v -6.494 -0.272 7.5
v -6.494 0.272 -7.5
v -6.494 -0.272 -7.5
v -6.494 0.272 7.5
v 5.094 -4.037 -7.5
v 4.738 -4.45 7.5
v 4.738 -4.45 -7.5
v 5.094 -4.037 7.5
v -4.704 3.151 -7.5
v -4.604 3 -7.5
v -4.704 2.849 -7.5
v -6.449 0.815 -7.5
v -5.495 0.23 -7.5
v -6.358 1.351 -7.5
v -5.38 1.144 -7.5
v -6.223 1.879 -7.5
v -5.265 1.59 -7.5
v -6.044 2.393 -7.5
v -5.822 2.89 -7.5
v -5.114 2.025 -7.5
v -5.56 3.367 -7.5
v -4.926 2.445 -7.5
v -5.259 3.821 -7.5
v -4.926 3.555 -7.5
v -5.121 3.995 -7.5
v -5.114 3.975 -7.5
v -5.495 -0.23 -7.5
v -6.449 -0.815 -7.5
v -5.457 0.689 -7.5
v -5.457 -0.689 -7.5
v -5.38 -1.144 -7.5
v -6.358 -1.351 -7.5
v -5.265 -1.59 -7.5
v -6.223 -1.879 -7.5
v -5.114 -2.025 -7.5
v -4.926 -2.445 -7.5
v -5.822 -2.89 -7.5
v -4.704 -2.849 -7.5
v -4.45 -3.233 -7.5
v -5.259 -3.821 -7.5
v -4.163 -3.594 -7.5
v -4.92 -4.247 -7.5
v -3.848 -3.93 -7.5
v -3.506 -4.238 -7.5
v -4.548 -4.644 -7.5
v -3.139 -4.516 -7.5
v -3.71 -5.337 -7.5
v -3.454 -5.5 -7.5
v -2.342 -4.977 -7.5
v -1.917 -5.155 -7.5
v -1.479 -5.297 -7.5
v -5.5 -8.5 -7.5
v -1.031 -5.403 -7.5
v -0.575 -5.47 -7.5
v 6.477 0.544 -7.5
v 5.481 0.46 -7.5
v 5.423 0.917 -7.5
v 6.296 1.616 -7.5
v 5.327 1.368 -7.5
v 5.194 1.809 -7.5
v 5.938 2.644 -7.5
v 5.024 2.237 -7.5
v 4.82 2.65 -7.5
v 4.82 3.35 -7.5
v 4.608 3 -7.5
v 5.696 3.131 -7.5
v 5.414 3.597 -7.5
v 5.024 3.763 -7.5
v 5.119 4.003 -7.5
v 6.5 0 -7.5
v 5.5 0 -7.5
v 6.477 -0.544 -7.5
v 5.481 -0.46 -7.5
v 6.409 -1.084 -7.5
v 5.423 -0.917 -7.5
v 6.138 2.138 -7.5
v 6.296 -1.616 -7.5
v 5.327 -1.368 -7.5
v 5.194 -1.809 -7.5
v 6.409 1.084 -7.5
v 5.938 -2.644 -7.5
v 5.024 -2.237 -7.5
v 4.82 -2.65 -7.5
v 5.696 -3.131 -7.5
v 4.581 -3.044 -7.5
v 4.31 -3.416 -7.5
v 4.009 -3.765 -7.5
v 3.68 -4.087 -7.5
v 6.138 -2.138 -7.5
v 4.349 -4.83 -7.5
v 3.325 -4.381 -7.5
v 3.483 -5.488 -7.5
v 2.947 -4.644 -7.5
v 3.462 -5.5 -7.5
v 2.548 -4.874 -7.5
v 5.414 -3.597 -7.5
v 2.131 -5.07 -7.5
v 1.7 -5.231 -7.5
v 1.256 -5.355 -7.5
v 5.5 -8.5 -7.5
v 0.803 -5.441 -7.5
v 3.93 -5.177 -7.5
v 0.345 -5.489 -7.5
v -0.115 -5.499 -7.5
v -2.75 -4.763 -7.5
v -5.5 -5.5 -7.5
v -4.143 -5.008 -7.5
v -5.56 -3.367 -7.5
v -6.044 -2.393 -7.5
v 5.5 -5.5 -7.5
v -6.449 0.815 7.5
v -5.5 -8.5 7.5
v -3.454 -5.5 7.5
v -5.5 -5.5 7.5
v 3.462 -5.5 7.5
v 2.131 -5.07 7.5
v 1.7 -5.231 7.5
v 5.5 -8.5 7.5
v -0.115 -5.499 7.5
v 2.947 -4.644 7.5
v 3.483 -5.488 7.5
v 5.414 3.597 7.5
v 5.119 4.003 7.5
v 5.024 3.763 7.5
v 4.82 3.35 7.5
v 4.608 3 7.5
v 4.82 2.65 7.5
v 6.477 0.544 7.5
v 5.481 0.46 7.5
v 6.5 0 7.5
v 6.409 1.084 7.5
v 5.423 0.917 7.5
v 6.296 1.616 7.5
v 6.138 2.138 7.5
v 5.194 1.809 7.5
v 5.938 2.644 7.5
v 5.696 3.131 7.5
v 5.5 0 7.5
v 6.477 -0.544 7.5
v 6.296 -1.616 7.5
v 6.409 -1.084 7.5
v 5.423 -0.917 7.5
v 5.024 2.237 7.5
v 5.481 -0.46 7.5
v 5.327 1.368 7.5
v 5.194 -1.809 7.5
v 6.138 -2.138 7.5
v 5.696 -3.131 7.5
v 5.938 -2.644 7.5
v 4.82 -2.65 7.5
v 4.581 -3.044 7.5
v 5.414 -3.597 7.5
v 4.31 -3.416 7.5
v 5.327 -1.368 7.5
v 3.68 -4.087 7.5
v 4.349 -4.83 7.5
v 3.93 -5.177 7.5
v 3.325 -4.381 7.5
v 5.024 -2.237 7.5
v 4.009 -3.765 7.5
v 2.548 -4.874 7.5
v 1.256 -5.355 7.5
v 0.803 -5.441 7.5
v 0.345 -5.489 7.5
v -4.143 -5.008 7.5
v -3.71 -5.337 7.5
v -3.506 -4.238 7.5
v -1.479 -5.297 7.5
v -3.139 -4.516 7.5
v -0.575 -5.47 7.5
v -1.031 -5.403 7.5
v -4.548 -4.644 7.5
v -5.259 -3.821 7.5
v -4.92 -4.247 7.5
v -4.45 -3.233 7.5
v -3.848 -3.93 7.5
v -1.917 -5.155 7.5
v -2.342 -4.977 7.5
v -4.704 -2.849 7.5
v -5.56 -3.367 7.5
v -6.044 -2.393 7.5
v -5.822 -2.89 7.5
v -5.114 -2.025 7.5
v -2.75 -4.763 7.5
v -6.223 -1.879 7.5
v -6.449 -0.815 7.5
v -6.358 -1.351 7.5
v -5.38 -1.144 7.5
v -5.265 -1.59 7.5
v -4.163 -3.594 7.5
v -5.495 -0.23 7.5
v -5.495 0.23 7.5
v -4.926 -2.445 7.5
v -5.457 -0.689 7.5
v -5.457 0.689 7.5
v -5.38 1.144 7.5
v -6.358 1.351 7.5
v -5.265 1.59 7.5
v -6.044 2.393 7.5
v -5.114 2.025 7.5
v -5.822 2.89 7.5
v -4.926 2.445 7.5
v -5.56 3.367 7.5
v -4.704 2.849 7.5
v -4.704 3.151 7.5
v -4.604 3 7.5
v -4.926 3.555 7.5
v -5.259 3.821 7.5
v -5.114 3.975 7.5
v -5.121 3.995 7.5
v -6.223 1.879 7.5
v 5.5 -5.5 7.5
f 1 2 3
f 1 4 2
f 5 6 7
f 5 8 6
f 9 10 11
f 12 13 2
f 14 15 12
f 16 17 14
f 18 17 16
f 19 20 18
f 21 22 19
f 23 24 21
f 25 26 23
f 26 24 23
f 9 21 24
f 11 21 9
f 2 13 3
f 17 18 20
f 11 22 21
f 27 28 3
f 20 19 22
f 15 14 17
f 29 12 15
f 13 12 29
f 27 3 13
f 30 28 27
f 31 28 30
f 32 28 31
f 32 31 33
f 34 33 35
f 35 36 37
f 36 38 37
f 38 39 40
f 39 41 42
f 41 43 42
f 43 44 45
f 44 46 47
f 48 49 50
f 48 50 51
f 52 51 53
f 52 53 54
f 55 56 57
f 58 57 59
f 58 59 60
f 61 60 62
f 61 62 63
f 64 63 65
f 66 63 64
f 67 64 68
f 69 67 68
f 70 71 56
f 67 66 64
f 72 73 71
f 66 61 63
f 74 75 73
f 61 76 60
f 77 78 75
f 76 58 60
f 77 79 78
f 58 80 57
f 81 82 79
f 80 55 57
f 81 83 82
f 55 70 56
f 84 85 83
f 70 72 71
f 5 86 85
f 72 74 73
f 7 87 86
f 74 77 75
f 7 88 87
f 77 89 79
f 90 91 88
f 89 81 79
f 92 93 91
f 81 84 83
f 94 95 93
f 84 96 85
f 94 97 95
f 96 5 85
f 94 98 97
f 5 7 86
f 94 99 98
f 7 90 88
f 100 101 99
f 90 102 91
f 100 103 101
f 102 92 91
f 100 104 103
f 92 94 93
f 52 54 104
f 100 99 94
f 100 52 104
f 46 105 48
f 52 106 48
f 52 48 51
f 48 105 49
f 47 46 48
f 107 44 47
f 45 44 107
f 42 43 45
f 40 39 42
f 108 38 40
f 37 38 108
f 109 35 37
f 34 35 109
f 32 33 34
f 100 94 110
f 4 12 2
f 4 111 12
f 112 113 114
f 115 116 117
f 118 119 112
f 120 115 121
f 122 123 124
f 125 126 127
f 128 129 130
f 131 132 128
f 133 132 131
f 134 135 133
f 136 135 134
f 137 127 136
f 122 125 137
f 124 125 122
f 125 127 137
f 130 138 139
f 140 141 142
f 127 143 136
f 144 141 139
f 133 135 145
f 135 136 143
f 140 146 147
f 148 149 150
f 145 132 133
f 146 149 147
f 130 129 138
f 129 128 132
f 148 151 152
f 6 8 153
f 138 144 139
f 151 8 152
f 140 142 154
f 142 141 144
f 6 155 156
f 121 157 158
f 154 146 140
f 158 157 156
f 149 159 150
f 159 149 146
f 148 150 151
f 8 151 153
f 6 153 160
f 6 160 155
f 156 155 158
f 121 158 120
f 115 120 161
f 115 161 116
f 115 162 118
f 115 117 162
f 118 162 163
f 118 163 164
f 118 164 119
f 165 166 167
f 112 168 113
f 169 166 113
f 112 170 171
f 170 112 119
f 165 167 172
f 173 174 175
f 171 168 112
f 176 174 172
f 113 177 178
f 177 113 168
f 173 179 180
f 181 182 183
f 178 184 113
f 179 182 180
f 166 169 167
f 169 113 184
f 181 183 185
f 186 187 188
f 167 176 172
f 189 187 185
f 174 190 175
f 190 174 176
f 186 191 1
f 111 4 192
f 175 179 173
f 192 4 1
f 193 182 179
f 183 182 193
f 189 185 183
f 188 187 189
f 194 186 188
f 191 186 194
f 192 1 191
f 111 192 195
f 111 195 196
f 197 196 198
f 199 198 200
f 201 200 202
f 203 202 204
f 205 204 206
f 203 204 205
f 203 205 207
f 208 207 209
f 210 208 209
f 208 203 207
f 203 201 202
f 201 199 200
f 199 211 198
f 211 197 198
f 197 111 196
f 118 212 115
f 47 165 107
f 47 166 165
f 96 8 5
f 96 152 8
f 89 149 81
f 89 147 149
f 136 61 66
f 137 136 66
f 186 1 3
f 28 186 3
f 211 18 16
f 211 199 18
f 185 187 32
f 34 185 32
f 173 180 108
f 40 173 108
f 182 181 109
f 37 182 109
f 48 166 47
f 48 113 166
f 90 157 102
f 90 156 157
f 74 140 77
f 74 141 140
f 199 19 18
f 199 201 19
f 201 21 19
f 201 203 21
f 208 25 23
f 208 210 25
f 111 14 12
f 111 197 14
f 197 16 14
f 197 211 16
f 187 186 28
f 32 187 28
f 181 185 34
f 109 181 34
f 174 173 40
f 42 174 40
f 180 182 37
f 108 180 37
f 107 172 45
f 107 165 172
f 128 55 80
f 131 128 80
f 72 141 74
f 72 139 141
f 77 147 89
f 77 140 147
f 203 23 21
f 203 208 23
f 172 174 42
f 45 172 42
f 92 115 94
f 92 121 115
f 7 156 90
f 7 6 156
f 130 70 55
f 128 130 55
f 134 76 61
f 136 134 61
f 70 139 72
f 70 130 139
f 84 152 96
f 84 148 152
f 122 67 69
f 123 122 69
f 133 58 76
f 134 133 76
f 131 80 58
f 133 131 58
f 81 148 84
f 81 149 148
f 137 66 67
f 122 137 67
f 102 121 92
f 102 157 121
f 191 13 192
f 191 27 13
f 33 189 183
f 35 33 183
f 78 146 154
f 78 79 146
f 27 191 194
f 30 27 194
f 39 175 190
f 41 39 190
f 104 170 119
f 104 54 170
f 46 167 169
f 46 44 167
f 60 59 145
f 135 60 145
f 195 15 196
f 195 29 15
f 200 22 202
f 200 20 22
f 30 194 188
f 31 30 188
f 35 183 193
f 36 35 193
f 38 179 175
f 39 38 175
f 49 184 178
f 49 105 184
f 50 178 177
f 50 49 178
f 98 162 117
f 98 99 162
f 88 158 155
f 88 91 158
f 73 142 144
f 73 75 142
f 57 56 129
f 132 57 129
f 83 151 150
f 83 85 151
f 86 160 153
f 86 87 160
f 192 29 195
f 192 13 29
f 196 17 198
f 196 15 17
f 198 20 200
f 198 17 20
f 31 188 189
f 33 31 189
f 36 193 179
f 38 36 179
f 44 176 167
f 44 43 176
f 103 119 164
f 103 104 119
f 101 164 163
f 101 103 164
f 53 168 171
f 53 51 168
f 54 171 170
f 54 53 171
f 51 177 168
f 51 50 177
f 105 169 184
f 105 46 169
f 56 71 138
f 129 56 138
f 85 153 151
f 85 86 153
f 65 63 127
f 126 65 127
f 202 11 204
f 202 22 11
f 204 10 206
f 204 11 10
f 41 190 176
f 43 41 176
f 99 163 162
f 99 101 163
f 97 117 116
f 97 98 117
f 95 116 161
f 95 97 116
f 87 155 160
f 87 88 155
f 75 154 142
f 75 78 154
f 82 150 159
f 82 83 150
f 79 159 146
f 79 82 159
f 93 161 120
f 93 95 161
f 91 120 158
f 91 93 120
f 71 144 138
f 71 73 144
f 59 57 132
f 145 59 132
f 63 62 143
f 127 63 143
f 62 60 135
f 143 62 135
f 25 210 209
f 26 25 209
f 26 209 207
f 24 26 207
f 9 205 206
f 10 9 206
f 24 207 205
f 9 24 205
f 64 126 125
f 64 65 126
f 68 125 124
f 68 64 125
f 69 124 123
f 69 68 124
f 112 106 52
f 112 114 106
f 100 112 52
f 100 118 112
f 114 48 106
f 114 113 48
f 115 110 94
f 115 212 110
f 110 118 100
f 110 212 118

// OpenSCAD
$fn = 75;

difference(){
    difference(){
        cylinder(15, d=13, center = true);
        translate([0,0,-1])
        cylinder(20, d=11, center = true);
    }
    translate([0,6,-1])
        cylinder(20, d=11, center = true);
    }
translate([0,-7,0])
    cube([11,3,15], center = true);
